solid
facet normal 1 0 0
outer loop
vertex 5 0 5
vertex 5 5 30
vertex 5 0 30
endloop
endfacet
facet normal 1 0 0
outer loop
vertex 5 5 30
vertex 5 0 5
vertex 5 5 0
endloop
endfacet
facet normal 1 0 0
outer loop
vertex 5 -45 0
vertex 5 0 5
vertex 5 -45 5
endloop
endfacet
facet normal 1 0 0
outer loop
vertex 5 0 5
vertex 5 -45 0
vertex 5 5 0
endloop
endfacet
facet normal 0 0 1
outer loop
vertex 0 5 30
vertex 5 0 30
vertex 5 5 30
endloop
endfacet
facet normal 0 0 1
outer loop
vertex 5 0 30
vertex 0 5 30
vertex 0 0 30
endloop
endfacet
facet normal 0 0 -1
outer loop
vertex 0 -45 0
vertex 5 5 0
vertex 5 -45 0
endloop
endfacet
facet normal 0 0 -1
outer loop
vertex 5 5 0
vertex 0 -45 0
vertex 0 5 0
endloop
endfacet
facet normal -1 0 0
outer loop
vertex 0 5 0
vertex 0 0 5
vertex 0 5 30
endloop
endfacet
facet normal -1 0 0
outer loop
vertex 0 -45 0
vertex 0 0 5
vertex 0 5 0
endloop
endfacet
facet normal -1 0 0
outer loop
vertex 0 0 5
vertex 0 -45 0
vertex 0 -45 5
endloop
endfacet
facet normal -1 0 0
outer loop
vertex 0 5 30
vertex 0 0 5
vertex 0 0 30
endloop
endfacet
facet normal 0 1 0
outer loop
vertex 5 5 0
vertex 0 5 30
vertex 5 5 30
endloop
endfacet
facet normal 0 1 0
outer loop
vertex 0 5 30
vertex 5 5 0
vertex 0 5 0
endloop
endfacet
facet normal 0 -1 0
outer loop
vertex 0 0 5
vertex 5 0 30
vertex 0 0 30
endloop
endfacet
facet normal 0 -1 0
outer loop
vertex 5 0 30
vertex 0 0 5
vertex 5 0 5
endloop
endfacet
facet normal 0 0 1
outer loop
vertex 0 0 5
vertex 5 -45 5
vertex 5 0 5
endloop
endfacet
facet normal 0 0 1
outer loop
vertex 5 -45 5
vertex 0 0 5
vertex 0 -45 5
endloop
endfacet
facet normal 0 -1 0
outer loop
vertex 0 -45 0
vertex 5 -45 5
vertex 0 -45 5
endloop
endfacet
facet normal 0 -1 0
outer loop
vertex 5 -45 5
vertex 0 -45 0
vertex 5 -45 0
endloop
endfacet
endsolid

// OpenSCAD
// Parameters
thickness = 5;         // Thickness of the bracket
short_arm = 30;        // Length of the shorter arm (vertical)
long_arm = 50;         // Length of the longer arm (horizontal)
corner_radius = 5;     // Radius for the rounded outer corner

module L_bracket() {
    difference() {
        union() {
            // Vertical arm (shorter)
            cube([thickness, thickness, short_arm]);

            // Horizontal arm (longer)
            translate([0, -long_arm + thickness, 0])
                cube([thickness, long_arm, thickness]);
        }

        // Cut the outer corner to make it rounded
        translate([-corner_radius, -corner_radius, -corner_radius])
            rotate([90, 0, 0])
                cylinder(h = thickness + 1, r = corner_radius, $fn = 50);
    }
}

// Position the bracket upright as described
rotate([0, 0, 0])
    L_bracket();
